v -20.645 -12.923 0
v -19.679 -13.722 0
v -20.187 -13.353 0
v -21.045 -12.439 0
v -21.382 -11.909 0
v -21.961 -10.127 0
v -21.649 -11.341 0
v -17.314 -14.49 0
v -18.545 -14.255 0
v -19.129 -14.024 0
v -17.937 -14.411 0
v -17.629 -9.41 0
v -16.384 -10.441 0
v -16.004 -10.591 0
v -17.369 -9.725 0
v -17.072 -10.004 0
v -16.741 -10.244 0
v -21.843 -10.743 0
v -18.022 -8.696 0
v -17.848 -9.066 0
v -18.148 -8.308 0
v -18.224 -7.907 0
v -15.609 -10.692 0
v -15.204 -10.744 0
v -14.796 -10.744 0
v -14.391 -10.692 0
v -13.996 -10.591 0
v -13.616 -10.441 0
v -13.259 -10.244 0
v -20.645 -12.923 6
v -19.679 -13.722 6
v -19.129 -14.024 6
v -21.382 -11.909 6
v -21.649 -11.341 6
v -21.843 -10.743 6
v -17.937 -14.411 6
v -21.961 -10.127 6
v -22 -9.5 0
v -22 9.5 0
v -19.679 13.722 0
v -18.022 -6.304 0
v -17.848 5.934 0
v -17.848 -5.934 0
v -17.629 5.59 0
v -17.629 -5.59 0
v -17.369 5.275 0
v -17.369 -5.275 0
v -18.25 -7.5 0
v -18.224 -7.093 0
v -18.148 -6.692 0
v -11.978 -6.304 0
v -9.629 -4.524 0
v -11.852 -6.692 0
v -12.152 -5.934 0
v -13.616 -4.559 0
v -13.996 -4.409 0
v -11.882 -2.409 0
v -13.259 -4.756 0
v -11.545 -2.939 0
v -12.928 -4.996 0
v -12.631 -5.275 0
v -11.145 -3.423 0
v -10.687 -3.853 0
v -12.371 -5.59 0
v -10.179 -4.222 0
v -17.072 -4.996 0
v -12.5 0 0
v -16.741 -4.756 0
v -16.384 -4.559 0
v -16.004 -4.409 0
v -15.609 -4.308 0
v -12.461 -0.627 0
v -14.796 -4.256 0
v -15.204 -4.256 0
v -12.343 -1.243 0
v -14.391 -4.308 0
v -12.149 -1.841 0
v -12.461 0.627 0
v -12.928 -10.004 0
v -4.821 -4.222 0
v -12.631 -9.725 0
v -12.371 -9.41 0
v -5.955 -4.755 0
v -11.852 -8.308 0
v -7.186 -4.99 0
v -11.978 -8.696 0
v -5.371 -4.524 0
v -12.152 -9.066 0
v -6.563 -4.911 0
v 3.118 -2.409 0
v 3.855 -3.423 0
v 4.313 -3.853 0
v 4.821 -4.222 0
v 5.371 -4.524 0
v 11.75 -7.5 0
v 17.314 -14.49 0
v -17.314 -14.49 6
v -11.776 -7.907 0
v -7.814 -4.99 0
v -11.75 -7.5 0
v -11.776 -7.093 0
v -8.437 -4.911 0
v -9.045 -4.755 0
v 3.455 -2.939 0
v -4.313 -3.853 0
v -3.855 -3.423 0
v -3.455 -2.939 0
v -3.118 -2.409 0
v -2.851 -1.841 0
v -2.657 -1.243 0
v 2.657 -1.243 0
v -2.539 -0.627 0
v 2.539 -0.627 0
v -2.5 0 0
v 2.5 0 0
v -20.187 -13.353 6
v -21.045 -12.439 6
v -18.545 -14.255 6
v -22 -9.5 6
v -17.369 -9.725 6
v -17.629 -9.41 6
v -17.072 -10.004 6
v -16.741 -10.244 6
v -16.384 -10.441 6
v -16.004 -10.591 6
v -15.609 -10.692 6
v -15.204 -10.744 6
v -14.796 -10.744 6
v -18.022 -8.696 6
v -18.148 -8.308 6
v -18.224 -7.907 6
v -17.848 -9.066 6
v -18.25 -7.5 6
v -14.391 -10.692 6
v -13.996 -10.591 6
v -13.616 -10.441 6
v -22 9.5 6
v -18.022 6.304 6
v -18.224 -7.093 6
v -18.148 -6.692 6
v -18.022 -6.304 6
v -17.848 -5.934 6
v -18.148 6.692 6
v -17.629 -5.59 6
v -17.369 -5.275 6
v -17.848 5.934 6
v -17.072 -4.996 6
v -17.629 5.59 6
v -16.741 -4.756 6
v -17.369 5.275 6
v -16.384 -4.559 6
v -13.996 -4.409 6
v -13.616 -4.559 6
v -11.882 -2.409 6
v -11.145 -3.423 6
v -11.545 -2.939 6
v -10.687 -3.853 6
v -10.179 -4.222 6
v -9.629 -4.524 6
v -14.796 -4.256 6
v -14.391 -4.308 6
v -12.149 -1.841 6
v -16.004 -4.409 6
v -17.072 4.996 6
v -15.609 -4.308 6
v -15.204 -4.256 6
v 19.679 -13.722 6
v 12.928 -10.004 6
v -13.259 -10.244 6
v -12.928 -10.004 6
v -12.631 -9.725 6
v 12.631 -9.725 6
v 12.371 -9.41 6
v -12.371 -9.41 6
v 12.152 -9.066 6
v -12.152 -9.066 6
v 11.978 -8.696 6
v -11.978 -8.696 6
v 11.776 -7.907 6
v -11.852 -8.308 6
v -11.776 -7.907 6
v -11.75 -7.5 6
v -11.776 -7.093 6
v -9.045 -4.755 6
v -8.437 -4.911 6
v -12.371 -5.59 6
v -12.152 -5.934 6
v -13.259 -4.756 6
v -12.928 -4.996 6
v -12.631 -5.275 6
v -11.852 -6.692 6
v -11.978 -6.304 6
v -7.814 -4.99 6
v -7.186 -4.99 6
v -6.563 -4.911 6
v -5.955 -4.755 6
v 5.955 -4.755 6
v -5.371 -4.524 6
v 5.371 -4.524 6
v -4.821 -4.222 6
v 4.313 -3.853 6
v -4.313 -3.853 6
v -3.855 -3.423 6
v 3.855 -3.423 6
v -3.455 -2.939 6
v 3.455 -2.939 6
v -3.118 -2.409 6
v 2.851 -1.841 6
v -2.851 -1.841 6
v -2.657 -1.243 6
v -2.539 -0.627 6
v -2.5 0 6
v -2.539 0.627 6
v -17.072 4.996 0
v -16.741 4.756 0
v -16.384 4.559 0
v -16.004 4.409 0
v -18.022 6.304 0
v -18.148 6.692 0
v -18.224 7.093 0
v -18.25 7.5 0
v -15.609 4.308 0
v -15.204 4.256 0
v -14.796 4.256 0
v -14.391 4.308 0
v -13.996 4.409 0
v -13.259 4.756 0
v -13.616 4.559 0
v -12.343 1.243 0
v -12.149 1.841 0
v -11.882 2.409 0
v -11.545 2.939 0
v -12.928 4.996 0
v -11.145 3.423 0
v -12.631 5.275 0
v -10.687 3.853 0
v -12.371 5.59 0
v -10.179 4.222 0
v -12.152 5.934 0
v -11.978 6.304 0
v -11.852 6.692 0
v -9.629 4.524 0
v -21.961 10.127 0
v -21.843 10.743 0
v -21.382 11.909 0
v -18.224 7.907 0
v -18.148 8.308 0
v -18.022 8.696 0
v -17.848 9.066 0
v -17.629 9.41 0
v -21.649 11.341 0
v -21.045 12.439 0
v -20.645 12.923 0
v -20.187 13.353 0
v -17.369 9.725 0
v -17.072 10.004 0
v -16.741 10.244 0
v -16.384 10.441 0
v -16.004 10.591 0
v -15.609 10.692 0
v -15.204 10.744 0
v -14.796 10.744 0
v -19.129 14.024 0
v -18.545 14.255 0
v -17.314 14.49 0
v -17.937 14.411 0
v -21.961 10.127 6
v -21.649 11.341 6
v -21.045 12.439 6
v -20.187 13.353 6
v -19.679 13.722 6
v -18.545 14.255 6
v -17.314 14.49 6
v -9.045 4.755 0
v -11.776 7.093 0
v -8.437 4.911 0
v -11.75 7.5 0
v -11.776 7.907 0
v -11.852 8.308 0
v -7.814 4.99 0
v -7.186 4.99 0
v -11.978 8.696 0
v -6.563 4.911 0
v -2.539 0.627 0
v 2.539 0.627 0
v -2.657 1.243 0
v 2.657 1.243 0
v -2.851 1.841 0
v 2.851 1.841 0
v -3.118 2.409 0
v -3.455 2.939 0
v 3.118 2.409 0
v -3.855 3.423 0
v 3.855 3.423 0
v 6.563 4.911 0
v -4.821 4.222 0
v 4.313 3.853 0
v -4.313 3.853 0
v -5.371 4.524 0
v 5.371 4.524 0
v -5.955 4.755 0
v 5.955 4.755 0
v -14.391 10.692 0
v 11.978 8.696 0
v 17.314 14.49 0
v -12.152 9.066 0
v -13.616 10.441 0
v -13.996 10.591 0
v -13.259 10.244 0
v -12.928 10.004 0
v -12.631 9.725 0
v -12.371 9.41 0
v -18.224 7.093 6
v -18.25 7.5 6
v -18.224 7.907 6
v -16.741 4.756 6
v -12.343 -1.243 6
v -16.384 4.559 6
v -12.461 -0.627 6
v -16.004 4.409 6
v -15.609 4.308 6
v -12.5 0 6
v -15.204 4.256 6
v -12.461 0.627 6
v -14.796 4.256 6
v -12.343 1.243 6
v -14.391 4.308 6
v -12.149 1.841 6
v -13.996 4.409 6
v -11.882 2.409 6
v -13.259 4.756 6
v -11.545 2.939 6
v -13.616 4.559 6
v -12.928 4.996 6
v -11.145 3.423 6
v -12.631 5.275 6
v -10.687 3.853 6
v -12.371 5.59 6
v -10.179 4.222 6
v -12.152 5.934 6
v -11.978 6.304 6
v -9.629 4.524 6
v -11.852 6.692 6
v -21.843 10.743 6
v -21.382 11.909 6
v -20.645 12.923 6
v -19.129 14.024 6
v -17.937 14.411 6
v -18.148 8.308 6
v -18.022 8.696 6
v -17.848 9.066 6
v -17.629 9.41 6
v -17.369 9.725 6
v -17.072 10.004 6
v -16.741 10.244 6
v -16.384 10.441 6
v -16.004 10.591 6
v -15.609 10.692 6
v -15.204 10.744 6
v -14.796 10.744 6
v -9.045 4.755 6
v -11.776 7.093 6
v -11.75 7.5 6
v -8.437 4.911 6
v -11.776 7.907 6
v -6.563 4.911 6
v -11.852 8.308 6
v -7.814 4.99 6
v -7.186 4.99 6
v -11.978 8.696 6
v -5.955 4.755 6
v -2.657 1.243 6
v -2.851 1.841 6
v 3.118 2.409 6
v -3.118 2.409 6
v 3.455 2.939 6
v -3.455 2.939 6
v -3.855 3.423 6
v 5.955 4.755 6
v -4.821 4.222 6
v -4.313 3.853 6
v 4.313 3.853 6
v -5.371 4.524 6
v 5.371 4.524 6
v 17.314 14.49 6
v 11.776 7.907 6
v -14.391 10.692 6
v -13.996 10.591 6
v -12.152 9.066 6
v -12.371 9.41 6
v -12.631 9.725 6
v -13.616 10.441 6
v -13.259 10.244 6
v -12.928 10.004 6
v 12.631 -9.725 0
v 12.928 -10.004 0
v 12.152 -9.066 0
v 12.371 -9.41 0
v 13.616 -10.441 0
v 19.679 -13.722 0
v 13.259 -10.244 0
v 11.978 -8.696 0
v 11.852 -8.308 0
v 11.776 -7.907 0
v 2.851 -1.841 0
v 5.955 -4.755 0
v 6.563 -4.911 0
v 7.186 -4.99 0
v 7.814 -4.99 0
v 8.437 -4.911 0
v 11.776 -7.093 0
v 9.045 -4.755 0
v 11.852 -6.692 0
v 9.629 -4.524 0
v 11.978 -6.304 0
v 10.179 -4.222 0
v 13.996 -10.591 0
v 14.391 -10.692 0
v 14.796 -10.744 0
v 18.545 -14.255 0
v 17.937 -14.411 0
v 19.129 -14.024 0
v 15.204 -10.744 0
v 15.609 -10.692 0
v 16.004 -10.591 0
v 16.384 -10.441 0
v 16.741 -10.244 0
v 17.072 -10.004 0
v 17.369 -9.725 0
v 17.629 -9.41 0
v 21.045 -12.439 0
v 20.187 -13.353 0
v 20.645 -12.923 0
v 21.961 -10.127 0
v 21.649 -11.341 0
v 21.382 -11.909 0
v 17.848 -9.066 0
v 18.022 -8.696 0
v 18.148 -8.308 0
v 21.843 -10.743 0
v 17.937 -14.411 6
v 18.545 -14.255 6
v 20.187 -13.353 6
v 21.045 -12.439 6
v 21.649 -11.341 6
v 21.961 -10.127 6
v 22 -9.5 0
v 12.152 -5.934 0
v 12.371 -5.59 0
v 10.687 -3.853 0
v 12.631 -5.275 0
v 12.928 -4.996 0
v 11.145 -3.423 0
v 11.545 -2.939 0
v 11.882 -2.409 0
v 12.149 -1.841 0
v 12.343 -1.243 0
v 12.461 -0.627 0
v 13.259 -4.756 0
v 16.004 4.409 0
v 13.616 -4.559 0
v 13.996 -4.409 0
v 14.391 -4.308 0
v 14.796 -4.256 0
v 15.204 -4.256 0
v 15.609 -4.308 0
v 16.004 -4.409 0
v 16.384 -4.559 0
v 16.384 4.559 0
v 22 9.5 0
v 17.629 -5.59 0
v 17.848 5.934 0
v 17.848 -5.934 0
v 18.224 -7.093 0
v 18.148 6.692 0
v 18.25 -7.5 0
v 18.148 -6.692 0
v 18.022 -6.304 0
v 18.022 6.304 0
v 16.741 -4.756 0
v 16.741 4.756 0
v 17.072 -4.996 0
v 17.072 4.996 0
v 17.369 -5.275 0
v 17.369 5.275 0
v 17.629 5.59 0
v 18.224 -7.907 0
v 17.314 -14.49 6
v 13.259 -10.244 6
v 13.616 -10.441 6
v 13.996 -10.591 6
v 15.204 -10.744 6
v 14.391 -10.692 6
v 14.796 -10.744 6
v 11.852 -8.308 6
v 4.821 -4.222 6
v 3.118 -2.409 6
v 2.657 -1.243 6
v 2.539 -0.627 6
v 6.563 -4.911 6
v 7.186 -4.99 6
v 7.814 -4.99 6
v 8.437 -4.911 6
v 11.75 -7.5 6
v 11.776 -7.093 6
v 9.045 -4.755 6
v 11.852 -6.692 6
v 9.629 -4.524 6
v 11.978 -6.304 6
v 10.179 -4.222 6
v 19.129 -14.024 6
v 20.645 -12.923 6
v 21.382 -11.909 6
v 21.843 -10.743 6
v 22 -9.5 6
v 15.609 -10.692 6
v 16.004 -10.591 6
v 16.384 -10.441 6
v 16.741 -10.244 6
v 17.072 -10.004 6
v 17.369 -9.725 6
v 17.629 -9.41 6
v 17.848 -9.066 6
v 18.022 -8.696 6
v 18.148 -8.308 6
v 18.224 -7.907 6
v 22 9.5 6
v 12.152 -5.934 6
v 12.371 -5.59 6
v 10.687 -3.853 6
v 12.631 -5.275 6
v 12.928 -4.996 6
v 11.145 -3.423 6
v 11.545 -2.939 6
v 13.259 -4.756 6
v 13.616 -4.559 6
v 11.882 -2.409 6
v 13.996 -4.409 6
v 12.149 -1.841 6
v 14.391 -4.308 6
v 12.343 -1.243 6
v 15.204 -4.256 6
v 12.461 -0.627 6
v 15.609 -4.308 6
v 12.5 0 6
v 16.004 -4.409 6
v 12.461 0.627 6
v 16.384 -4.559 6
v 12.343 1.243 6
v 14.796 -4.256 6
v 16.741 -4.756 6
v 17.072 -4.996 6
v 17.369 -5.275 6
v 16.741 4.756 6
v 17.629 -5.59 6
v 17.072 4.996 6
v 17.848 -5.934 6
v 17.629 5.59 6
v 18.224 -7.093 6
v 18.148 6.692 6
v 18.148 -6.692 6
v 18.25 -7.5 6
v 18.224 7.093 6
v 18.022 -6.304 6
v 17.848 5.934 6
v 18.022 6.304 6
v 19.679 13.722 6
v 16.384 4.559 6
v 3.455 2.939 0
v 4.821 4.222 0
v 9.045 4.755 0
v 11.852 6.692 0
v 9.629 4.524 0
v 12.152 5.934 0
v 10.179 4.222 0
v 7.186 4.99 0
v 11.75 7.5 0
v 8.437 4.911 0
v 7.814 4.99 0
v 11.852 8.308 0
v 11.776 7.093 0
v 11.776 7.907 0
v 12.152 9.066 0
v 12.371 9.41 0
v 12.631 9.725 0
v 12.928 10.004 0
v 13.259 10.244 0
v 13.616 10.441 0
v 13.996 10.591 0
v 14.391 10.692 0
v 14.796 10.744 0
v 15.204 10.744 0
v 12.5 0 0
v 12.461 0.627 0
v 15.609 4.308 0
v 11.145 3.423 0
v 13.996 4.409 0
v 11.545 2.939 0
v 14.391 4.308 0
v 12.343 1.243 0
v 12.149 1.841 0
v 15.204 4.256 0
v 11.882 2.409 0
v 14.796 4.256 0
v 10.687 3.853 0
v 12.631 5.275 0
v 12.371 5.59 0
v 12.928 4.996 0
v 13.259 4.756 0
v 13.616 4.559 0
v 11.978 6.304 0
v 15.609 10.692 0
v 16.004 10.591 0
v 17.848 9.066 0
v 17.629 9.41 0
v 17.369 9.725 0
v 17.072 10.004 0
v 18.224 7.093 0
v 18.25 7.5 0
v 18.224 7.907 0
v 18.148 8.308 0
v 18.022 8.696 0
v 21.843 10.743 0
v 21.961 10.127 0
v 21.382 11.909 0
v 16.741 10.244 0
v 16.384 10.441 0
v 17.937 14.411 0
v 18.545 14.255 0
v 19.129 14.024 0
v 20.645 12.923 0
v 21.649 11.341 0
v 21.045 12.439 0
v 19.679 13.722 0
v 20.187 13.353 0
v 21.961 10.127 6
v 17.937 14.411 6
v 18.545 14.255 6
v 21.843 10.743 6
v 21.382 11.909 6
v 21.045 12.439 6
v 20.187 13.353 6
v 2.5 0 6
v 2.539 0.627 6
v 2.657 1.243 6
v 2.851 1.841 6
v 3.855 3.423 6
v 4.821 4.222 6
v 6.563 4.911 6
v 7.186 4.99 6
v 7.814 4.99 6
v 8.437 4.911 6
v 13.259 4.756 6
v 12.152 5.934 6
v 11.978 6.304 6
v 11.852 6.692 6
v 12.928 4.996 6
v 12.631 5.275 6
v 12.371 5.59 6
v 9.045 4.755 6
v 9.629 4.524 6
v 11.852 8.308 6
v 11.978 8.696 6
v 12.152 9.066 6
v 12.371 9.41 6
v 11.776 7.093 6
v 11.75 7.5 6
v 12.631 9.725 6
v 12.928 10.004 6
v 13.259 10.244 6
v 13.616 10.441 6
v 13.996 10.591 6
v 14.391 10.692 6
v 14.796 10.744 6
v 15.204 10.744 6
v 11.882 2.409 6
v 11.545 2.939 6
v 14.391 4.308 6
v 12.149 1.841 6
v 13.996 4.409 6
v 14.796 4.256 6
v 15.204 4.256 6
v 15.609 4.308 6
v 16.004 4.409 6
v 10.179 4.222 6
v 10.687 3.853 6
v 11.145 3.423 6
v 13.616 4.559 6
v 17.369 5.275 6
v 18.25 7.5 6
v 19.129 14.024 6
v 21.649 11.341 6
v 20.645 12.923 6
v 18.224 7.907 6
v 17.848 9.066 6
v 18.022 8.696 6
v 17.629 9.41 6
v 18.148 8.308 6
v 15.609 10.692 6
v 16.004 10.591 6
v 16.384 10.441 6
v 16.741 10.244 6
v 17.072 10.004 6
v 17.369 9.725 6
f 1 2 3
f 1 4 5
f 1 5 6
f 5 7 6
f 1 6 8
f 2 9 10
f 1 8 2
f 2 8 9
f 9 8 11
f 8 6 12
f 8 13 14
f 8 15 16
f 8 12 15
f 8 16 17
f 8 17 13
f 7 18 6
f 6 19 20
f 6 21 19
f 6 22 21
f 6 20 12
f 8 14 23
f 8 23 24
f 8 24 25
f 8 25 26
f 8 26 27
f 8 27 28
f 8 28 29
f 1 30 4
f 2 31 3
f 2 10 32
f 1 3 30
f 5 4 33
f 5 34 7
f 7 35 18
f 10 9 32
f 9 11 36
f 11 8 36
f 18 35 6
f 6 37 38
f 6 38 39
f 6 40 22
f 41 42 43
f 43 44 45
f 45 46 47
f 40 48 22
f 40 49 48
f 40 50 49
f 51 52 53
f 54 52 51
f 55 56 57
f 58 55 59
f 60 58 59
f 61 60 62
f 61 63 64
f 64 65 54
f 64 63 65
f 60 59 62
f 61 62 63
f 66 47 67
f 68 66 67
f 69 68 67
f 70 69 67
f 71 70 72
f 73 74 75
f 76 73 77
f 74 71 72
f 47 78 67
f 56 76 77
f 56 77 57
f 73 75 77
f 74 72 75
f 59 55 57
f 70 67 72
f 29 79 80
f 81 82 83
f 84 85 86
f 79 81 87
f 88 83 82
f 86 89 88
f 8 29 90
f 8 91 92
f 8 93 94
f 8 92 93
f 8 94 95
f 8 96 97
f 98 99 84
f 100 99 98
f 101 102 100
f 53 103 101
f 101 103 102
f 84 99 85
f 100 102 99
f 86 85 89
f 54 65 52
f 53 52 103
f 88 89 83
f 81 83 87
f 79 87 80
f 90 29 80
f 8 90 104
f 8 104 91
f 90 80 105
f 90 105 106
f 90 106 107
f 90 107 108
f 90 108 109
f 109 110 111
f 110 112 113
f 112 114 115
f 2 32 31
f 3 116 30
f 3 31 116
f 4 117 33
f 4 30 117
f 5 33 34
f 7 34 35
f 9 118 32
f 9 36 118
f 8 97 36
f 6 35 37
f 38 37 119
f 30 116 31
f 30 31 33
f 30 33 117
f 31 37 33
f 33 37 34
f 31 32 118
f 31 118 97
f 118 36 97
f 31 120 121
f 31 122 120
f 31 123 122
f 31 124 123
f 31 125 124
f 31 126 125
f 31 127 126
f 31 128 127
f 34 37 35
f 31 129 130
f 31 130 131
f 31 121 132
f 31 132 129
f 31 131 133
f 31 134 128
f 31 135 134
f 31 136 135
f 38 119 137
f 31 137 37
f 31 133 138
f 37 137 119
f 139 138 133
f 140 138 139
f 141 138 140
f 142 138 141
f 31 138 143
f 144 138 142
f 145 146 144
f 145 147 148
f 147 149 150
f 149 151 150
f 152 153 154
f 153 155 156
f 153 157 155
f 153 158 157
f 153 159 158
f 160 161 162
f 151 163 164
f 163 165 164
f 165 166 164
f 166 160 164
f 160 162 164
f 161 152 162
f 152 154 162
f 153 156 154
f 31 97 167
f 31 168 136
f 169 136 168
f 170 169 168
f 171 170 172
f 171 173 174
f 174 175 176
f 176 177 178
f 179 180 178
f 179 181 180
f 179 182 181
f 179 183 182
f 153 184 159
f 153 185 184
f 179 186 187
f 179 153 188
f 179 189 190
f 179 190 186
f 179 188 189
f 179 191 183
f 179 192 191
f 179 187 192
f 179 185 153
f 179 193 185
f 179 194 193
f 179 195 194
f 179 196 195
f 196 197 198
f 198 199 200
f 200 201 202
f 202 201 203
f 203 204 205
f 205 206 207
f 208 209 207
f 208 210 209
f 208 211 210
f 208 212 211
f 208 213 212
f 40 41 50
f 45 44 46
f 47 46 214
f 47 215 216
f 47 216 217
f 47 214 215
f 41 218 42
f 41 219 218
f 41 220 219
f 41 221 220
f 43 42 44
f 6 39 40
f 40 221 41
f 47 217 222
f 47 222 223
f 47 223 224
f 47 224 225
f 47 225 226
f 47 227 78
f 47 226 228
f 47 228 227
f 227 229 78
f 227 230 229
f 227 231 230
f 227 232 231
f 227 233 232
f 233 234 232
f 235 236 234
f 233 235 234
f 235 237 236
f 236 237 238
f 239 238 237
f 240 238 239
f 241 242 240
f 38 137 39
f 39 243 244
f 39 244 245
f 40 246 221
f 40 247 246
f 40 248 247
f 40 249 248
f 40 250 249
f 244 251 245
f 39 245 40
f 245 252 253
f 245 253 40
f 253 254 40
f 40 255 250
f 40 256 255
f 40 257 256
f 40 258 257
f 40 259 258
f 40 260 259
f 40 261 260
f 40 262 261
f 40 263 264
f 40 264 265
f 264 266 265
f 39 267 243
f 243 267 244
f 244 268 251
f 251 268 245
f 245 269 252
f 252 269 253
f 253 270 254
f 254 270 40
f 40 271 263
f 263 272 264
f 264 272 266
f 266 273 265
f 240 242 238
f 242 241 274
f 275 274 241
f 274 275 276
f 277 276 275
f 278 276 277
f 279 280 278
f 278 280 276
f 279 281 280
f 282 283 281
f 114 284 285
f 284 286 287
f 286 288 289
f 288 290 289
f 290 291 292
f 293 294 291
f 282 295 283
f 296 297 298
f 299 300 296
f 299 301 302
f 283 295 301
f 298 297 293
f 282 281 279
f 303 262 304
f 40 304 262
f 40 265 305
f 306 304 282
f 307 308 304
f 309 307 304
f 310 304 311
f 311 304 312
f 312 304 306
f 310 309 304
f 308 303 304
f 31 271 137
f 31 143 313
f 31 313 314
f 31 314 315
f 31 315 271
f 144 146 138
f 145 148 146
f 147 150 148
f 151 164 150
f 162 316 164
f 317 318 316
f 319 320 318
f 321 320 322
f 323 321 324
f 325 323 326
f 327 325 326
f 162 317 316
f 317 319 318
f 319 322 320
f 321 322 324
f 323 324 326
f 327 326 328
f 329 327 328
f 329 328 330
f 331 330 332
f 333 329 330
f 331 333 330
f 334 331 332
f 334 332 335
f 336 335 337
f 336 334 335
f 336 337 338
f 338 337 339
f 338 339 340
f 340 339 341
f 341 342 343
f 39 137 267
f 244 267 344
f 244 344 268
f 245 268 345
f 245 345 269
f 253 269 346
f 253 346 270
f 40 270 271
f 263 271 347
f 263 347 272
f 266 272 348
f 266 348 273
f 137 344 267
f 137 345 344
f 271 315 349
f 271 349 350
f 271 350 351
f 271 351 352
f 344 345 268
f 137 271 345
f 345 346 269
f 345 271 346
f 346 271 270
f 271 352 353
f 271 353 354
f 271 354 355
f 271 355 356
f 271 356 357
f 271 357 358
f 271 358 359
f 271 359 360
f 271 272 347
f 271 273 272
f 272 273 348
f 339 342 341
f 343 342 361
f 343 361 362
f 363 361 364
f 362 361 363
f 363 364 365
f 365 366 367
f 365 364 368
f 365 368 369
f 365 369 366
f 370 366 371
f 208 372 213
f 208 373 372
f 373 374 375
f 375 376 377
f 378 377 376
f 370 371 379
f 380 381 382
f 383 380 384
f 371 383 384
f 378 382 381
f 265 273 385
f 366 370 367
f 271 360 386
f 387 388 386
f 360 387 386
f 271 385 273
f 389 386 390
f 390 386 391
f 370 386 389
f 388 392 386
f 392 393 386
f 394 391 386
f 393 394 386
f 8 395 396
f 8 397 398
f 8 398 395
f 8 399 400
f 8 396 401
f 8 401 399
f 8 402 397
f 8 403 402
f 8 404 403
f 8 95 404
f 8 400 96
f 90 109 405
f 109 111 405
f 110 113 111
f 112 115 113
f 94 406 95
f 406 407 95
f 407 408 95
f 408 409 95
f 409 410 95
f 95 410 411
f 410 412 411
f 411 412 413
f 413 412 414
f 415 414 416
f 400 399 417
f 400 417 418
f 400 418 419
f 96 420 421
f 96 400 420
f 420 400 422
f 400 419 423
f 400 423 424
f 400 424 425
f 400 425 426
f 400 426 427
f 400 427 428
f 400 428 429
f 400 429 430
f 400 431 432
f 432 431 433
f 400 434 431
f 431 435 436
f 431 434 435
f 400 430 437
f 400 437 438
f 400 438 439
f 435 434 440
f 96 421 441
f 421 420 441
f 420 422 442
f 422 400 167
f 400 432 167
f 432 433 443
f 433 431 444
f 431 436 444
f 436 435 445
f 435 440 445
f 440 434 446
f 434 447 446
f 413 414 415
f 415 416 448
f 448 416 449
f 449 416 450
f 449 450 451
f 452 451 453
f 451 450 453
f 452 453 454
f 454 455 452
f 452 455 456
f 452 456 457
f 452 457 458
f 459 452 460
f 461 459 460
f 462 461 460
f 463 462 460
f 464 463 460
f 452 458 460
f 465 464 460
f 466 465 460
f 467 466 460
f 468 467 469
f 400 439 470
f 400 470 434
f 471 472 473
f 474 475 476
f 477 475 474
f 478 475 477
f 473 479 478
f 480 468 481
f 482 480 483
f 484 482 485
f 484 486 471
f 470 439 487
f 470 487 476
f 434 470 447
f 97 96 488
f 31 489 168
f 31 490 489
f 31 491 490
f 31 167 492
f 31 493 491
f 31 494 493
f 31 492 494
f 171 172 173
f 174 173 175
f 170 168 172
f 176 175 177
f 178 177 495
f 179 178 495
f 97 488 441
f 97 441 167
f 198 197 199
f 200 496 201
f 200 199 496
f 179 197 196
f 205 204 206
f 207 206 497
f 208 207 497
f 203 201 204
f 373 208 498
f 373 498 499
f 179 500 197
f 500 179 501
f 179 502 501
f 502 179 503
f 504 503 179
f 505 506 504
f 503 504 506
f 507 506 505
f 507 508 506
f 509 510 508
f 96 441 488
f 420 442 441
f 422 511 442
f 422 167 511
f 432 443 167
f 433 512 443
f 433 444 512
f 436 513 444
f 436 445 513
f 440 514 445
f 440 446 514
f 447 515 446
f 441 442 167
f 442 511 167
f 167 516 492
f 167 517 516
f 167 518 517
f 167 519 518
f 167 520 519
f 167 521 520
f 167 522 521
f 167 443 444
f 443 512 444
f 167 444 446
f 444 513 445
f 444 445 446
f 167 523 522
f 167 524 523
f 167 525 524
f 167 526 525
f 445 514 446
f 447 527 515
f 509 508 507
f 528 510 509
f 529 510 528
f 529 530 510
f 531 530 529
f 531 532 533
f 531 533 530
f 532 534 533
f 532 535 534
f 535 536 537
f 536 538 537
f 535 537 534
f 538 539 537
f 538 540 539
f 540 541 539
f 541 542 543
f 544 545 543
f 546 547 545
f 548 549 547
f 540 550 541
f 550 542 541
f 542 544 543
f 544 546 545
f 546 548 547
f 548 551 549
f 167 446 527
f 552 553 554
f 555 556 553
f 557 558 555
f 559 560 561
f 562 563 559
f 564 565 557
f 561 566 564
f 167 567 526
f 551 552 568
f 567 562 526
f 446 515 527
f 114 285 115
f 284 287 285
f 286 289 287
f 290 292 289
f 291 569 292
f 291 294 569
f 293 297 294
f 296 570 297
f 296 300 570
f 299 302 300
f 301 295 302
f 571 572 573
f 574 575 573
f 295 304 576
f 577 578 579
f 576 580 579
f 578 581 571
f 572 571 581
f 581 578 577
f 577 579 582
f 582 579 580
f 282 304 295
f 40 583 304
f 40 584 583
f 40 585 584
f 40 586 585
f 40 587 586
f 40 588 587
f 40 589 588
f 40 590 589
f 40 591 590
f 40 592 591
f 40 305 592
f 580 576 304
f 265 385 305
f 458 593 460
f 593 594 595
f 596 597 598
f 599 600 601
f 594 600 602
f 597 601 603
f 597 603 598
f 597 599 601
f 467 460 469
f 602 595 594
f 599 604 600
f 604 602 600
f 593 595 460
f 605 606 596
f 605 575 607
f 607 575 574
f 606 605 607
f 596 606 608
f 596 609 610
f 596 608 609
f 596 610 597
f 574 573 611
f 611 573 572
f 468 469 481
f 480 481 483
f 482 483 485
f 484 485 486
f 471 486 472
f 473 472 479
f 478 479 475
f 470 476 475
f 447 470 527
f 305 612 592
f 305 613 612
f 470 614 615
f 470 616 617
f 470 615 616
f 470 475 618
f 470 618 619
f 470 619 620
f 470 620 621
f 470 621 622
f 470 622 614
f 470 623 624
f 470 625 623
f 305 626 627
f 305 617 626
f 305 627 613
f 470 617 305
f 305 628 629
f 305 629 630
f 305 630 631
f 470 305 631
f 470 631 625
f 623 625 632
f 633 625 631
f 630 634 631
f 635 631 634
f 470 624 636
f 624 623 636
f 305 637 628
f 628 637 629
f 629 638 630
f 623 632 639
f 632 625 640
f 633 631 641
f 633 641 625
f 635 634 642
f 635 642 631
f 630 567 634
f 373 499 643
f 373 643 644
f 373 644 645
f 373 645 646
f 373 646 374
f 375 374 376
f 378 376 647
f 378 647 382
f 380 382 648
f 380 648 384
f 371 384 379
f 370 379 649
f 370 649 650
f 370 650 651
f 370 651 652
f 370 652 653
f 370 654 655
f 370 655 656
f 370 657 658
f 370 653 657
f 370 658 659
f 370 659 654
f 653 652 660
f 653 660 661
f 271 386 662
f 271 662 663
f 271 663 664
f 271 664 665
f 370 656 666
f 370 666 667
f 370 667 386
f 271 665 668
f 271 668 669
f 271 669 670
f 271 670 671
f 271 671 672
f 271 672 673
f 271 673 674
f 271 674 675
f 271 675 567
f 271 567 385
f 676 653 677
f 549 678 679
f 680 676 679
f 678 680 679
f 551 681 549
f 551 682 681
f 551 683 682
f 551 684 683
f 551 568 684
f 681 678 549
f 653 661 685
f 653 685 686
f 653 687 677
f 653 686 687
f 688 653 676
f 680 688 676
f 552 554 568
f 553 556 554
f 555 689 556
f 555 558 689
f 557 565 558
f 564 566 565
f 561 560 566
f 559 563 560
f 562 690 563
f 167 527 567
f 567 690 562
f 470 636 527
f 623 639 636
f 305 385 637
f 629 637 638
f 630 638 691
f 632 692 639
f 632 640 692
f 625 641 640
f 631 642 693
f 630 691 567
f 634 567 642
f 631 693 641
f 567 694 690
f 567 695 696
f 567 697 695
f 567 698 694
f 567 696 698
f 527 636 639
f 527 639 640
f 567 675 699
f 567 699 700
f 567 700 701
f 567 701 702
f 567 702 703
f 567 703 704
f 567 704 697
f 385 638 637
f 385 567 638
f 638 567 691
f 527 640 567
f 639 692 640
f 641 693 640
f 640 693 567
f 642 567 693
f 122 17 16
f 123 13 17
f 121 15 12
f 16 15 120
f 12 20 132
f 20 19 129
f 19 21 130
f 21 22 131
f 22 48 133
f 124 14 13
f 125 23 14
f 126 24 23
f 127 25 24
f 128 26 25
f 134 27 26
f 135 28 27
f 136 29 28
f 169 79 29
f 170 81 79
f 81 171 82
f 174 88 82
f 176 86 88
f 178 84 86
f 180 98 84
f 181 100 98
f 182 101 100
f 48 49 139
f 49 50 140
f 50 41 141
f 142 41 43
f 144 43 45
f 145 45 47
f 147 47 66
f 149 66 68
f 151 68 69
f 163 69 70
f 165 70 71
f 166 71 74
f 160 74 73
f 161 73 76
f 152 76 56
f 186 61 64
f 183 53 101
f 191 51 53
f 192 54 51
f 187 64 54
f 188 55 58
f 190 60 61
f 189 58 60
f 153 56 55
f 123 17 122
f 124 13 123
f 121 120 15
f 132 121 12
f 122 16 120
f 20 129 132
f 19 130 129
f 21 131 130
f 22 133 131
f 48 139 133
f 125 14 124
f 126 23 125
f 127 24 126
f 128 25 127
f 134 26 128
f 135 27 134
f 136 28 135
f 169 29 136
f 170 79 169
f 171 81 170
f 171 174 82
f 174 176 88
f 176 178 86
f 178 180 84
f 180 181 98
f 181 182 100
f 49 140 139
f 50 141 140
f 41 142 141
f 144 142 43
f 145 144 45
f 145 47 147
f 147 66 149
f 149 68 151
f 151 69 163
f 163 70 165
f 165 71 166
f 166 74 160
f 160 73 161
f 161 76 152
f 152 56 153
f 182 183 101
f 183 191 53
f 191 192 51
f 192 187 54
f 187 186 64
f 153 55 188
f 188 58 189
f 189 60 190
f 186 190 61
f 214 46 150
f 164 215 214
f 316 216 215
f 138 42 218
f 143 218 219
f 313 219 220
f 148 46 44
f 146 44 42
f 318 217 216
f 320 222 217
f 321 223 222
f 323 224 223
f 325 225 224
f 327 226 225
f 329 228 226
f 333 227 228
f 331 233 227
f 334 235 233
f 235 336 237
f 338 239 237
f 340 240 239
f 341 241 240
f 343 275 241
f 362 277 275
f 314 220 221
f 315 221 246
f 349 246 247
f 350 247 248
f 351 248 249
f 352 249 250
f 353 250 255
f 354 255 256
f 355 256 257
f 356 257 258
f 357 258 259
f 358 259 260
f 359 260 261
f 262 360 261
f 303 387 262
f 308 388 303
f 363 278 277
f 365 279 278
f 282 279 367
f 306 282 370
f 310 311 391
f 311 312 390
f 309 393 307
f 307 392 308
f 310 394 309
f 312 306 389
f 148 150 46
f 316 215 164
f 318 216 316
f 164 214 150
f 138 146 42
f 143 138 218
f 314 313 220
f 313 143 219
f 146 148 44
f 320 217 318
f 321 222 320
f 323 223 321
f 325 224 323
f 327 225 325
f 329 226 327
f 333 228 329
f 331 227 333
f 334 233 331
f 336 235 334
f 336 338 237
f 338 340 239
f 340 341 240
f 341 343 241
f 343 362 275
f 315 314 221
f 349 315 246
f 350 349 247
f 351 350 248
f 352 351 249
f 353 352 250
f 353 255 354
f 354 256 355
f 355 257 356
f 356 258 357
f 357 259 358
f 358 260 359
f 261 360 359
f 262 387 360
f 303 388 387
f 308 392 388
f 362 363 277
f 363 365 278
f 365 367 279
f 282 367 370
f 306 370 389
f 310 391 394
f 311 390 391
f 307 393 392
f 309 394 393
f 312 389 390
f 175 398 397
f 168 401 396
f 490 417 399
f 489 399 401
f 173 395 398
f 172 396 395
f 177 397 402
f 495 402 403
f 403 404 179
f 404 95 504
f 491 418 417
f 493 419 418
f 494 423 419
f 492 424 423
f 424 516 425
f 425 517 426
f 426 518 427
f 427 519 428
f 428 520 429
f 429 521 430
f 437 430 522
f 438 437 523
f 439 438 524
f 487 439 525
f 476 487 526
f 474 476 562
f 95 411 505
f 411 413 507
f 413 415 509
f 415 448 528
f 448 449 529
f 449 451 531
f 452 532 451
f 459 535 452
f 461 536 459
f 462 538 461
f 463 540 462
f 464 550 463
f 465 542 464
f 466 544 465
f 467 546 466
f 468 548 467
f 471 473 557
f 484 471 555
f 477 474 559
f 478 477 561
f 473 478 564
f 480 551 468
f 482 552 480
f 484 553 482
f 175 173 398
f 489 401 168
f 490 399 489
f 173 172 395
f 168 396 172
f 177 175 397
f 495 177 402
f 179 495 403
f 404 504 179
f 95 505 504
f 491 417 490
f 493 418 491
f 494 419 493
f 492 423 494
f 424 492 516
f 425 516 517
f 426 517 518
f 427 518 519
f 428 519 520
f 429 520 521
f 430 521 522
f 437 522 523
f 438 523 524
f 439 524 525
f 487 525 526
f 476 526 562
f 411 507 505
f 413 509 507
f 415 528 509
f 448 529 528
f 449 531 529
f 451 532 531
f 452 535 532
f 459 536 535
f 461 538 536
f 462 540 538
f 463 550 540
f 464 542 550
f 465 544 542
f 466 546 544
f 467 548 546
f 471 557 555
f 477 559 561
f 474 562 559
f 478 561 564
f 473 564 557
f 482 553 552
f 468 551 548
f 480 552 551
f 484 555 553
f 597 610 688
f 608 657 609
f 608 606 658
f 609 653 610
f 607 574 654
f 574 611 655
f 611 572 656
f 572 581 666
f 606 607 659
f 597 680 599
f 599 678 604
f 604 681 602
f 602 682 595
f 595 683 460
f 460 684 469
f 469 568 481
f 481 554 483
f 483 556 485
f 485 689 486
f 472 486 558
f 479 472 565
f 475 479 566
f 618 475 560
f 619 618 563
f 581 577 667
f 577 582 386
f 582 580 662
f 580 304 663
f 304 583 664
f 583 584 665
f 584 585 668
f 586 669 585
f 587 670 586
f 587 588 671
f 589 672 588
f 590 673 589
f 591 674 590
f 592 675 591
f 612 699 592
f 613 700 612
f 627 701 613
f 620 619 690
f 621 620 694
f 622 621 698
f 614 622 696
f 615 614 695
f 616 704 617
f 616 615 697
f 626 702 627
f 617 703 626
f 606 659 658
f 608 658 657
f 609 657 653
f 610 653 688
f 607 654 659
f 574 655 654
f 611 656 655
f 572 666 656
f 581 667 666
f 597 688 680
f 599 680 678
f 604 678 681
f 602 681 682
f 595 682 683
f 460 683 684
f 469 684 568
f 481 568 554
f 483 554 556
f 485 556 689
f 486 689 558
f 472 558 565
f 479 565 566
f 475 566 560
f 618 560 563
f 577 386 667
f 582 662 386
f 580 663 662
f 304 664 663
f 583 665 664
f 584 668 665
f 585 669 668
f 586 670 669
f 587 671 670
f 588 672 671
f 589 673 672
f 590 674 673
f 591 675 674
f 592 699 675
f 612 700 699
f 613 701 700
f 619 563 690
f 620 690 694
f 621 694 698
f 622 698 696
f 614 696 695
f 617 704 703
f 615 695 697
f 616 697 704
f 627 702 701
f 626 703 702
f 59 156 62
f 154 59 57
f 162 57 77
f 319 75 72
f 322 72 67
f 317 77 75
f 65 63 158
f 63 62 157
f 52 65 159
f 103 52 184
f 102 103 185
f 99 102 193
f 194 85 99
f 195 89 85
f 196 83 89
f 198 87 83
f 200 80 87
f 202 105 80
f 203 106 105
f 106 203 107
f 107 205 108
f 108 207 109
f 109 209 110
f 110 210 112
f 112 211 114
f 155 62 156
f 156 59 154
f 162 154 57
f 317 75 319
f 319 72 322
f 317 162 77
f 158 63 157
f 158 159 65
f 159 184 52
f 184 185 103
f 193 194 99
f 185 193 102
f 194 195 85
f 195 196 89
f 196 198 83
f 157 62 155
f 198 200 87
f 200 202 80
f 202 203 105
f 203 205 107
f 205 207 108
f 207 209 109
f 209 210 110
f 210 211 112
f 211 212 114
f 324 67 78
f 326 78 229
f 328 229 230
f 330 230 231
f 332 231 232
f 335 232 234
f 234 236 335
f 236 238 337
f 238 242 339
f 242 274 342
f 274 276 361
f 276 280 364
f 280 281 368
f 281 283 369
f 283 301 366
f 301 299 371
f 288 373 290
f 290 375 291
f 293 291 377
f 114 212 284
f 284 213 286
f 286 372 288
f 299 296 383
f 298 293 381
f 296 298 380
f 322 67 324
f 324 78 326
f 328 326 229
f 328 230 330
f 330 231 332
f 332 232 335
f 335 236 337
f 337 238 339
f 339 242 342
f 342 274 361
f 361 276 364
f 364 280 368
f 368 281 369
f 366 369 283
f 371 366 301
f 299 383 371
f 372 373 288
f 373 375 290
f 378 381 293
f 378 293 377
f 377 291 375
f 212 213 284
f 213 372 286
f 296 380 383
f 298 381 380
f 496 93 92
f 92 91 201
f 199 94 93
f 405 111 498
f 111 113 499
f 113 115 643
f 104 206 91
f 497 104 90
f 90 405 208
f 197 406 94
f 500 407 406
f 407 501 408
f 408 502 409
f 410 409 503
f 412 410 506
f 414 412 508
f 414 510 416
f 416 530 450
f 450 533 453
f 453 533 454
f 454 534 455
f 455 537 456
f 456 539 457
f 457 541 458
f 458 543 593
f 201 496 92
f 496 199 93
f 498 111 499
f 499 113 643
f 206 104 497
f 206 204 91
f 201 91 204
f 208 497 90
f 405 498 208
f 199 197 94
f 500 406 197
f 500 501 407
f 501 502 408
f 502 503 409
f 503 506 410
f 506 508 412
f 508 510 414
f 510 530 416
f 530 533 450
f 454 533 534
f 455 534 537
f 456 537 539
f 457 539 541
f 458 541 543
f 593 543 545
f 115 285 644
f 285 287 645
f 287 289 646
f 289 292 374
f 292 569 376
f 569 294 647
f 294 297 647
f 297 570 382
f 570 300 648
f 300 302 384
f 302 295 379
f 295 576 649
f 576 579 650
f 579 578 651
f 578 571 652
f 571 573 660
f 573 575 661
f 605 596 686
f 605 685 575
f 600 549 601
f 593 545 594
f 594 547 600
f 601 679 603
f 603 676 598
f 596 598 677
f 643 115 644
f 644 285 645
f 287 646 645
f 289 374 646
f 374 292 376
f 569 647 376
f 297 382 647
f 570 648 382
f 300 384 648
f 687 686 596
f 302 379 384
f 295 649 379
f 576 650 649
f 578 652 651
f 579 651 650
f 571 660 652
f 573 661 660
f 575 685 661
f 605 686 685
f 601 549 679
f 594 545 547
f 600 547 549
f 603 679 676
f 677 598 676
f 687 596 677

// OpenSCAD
$fn = 50;

difference() {
	union() {
		hull() {
			translate(v = [-17.0, 9.5, 0]) {
				cylinder(h = 6, r = 5);
			}
			translate(v = [17.0, 9.5, 0]) {
				cylinder(h = 6, r = 5);
			}
			translate(v = [-17.0, -9.5, 0]) {
				cylinder(h = 6, r = 5);
			}
			translate(v = [17.0, -9.5, 0]) {
				cylinder(h = 6, r = 5);
			}
		}
	}
	union() {
		translate(v = [-15.0, -7.5, -100.0]) {
			cylinder(h = 200, r = 3.25);
		}
		translate(v = [-15.0, 7.5, -100.0]) {
			cylinder(h = 200, r = 3.25);
		}
		translate(v = [15.0, -7.5, -100.0]) {
			cylinder(h = 200, r = 3.25);
		}
		translate(v = [15.0, 7.5, -100.0]) {
			cylinder(h = 200, r = 3.25);
		}
		translate(v = [-15.0, -7.5, -100.0]) {
			cylinder(h = 200, r = 1.8);
		}
		translate(v = [-15.0, 7.5, -100.0]) {
			cylinder(h = 200, r = 1.8);
		}
		translate(v = [15.0, -7.5, -100.0]) {
			cylinder(h = 200, r = 1.8);
		}
		translate(v = [15.0, 7.5, -100.0]) {
			cylinder(h = 200, r = 1.8);
		}
		translate(v = [-7.5, 0, 0.0]) {
			cylinder(h = 6, r = 5.0);
		}
		translate(v = [7.5, 0, 0.0]) {
			cylinder(h = 6, r = 5.0);
		}
	}
}
